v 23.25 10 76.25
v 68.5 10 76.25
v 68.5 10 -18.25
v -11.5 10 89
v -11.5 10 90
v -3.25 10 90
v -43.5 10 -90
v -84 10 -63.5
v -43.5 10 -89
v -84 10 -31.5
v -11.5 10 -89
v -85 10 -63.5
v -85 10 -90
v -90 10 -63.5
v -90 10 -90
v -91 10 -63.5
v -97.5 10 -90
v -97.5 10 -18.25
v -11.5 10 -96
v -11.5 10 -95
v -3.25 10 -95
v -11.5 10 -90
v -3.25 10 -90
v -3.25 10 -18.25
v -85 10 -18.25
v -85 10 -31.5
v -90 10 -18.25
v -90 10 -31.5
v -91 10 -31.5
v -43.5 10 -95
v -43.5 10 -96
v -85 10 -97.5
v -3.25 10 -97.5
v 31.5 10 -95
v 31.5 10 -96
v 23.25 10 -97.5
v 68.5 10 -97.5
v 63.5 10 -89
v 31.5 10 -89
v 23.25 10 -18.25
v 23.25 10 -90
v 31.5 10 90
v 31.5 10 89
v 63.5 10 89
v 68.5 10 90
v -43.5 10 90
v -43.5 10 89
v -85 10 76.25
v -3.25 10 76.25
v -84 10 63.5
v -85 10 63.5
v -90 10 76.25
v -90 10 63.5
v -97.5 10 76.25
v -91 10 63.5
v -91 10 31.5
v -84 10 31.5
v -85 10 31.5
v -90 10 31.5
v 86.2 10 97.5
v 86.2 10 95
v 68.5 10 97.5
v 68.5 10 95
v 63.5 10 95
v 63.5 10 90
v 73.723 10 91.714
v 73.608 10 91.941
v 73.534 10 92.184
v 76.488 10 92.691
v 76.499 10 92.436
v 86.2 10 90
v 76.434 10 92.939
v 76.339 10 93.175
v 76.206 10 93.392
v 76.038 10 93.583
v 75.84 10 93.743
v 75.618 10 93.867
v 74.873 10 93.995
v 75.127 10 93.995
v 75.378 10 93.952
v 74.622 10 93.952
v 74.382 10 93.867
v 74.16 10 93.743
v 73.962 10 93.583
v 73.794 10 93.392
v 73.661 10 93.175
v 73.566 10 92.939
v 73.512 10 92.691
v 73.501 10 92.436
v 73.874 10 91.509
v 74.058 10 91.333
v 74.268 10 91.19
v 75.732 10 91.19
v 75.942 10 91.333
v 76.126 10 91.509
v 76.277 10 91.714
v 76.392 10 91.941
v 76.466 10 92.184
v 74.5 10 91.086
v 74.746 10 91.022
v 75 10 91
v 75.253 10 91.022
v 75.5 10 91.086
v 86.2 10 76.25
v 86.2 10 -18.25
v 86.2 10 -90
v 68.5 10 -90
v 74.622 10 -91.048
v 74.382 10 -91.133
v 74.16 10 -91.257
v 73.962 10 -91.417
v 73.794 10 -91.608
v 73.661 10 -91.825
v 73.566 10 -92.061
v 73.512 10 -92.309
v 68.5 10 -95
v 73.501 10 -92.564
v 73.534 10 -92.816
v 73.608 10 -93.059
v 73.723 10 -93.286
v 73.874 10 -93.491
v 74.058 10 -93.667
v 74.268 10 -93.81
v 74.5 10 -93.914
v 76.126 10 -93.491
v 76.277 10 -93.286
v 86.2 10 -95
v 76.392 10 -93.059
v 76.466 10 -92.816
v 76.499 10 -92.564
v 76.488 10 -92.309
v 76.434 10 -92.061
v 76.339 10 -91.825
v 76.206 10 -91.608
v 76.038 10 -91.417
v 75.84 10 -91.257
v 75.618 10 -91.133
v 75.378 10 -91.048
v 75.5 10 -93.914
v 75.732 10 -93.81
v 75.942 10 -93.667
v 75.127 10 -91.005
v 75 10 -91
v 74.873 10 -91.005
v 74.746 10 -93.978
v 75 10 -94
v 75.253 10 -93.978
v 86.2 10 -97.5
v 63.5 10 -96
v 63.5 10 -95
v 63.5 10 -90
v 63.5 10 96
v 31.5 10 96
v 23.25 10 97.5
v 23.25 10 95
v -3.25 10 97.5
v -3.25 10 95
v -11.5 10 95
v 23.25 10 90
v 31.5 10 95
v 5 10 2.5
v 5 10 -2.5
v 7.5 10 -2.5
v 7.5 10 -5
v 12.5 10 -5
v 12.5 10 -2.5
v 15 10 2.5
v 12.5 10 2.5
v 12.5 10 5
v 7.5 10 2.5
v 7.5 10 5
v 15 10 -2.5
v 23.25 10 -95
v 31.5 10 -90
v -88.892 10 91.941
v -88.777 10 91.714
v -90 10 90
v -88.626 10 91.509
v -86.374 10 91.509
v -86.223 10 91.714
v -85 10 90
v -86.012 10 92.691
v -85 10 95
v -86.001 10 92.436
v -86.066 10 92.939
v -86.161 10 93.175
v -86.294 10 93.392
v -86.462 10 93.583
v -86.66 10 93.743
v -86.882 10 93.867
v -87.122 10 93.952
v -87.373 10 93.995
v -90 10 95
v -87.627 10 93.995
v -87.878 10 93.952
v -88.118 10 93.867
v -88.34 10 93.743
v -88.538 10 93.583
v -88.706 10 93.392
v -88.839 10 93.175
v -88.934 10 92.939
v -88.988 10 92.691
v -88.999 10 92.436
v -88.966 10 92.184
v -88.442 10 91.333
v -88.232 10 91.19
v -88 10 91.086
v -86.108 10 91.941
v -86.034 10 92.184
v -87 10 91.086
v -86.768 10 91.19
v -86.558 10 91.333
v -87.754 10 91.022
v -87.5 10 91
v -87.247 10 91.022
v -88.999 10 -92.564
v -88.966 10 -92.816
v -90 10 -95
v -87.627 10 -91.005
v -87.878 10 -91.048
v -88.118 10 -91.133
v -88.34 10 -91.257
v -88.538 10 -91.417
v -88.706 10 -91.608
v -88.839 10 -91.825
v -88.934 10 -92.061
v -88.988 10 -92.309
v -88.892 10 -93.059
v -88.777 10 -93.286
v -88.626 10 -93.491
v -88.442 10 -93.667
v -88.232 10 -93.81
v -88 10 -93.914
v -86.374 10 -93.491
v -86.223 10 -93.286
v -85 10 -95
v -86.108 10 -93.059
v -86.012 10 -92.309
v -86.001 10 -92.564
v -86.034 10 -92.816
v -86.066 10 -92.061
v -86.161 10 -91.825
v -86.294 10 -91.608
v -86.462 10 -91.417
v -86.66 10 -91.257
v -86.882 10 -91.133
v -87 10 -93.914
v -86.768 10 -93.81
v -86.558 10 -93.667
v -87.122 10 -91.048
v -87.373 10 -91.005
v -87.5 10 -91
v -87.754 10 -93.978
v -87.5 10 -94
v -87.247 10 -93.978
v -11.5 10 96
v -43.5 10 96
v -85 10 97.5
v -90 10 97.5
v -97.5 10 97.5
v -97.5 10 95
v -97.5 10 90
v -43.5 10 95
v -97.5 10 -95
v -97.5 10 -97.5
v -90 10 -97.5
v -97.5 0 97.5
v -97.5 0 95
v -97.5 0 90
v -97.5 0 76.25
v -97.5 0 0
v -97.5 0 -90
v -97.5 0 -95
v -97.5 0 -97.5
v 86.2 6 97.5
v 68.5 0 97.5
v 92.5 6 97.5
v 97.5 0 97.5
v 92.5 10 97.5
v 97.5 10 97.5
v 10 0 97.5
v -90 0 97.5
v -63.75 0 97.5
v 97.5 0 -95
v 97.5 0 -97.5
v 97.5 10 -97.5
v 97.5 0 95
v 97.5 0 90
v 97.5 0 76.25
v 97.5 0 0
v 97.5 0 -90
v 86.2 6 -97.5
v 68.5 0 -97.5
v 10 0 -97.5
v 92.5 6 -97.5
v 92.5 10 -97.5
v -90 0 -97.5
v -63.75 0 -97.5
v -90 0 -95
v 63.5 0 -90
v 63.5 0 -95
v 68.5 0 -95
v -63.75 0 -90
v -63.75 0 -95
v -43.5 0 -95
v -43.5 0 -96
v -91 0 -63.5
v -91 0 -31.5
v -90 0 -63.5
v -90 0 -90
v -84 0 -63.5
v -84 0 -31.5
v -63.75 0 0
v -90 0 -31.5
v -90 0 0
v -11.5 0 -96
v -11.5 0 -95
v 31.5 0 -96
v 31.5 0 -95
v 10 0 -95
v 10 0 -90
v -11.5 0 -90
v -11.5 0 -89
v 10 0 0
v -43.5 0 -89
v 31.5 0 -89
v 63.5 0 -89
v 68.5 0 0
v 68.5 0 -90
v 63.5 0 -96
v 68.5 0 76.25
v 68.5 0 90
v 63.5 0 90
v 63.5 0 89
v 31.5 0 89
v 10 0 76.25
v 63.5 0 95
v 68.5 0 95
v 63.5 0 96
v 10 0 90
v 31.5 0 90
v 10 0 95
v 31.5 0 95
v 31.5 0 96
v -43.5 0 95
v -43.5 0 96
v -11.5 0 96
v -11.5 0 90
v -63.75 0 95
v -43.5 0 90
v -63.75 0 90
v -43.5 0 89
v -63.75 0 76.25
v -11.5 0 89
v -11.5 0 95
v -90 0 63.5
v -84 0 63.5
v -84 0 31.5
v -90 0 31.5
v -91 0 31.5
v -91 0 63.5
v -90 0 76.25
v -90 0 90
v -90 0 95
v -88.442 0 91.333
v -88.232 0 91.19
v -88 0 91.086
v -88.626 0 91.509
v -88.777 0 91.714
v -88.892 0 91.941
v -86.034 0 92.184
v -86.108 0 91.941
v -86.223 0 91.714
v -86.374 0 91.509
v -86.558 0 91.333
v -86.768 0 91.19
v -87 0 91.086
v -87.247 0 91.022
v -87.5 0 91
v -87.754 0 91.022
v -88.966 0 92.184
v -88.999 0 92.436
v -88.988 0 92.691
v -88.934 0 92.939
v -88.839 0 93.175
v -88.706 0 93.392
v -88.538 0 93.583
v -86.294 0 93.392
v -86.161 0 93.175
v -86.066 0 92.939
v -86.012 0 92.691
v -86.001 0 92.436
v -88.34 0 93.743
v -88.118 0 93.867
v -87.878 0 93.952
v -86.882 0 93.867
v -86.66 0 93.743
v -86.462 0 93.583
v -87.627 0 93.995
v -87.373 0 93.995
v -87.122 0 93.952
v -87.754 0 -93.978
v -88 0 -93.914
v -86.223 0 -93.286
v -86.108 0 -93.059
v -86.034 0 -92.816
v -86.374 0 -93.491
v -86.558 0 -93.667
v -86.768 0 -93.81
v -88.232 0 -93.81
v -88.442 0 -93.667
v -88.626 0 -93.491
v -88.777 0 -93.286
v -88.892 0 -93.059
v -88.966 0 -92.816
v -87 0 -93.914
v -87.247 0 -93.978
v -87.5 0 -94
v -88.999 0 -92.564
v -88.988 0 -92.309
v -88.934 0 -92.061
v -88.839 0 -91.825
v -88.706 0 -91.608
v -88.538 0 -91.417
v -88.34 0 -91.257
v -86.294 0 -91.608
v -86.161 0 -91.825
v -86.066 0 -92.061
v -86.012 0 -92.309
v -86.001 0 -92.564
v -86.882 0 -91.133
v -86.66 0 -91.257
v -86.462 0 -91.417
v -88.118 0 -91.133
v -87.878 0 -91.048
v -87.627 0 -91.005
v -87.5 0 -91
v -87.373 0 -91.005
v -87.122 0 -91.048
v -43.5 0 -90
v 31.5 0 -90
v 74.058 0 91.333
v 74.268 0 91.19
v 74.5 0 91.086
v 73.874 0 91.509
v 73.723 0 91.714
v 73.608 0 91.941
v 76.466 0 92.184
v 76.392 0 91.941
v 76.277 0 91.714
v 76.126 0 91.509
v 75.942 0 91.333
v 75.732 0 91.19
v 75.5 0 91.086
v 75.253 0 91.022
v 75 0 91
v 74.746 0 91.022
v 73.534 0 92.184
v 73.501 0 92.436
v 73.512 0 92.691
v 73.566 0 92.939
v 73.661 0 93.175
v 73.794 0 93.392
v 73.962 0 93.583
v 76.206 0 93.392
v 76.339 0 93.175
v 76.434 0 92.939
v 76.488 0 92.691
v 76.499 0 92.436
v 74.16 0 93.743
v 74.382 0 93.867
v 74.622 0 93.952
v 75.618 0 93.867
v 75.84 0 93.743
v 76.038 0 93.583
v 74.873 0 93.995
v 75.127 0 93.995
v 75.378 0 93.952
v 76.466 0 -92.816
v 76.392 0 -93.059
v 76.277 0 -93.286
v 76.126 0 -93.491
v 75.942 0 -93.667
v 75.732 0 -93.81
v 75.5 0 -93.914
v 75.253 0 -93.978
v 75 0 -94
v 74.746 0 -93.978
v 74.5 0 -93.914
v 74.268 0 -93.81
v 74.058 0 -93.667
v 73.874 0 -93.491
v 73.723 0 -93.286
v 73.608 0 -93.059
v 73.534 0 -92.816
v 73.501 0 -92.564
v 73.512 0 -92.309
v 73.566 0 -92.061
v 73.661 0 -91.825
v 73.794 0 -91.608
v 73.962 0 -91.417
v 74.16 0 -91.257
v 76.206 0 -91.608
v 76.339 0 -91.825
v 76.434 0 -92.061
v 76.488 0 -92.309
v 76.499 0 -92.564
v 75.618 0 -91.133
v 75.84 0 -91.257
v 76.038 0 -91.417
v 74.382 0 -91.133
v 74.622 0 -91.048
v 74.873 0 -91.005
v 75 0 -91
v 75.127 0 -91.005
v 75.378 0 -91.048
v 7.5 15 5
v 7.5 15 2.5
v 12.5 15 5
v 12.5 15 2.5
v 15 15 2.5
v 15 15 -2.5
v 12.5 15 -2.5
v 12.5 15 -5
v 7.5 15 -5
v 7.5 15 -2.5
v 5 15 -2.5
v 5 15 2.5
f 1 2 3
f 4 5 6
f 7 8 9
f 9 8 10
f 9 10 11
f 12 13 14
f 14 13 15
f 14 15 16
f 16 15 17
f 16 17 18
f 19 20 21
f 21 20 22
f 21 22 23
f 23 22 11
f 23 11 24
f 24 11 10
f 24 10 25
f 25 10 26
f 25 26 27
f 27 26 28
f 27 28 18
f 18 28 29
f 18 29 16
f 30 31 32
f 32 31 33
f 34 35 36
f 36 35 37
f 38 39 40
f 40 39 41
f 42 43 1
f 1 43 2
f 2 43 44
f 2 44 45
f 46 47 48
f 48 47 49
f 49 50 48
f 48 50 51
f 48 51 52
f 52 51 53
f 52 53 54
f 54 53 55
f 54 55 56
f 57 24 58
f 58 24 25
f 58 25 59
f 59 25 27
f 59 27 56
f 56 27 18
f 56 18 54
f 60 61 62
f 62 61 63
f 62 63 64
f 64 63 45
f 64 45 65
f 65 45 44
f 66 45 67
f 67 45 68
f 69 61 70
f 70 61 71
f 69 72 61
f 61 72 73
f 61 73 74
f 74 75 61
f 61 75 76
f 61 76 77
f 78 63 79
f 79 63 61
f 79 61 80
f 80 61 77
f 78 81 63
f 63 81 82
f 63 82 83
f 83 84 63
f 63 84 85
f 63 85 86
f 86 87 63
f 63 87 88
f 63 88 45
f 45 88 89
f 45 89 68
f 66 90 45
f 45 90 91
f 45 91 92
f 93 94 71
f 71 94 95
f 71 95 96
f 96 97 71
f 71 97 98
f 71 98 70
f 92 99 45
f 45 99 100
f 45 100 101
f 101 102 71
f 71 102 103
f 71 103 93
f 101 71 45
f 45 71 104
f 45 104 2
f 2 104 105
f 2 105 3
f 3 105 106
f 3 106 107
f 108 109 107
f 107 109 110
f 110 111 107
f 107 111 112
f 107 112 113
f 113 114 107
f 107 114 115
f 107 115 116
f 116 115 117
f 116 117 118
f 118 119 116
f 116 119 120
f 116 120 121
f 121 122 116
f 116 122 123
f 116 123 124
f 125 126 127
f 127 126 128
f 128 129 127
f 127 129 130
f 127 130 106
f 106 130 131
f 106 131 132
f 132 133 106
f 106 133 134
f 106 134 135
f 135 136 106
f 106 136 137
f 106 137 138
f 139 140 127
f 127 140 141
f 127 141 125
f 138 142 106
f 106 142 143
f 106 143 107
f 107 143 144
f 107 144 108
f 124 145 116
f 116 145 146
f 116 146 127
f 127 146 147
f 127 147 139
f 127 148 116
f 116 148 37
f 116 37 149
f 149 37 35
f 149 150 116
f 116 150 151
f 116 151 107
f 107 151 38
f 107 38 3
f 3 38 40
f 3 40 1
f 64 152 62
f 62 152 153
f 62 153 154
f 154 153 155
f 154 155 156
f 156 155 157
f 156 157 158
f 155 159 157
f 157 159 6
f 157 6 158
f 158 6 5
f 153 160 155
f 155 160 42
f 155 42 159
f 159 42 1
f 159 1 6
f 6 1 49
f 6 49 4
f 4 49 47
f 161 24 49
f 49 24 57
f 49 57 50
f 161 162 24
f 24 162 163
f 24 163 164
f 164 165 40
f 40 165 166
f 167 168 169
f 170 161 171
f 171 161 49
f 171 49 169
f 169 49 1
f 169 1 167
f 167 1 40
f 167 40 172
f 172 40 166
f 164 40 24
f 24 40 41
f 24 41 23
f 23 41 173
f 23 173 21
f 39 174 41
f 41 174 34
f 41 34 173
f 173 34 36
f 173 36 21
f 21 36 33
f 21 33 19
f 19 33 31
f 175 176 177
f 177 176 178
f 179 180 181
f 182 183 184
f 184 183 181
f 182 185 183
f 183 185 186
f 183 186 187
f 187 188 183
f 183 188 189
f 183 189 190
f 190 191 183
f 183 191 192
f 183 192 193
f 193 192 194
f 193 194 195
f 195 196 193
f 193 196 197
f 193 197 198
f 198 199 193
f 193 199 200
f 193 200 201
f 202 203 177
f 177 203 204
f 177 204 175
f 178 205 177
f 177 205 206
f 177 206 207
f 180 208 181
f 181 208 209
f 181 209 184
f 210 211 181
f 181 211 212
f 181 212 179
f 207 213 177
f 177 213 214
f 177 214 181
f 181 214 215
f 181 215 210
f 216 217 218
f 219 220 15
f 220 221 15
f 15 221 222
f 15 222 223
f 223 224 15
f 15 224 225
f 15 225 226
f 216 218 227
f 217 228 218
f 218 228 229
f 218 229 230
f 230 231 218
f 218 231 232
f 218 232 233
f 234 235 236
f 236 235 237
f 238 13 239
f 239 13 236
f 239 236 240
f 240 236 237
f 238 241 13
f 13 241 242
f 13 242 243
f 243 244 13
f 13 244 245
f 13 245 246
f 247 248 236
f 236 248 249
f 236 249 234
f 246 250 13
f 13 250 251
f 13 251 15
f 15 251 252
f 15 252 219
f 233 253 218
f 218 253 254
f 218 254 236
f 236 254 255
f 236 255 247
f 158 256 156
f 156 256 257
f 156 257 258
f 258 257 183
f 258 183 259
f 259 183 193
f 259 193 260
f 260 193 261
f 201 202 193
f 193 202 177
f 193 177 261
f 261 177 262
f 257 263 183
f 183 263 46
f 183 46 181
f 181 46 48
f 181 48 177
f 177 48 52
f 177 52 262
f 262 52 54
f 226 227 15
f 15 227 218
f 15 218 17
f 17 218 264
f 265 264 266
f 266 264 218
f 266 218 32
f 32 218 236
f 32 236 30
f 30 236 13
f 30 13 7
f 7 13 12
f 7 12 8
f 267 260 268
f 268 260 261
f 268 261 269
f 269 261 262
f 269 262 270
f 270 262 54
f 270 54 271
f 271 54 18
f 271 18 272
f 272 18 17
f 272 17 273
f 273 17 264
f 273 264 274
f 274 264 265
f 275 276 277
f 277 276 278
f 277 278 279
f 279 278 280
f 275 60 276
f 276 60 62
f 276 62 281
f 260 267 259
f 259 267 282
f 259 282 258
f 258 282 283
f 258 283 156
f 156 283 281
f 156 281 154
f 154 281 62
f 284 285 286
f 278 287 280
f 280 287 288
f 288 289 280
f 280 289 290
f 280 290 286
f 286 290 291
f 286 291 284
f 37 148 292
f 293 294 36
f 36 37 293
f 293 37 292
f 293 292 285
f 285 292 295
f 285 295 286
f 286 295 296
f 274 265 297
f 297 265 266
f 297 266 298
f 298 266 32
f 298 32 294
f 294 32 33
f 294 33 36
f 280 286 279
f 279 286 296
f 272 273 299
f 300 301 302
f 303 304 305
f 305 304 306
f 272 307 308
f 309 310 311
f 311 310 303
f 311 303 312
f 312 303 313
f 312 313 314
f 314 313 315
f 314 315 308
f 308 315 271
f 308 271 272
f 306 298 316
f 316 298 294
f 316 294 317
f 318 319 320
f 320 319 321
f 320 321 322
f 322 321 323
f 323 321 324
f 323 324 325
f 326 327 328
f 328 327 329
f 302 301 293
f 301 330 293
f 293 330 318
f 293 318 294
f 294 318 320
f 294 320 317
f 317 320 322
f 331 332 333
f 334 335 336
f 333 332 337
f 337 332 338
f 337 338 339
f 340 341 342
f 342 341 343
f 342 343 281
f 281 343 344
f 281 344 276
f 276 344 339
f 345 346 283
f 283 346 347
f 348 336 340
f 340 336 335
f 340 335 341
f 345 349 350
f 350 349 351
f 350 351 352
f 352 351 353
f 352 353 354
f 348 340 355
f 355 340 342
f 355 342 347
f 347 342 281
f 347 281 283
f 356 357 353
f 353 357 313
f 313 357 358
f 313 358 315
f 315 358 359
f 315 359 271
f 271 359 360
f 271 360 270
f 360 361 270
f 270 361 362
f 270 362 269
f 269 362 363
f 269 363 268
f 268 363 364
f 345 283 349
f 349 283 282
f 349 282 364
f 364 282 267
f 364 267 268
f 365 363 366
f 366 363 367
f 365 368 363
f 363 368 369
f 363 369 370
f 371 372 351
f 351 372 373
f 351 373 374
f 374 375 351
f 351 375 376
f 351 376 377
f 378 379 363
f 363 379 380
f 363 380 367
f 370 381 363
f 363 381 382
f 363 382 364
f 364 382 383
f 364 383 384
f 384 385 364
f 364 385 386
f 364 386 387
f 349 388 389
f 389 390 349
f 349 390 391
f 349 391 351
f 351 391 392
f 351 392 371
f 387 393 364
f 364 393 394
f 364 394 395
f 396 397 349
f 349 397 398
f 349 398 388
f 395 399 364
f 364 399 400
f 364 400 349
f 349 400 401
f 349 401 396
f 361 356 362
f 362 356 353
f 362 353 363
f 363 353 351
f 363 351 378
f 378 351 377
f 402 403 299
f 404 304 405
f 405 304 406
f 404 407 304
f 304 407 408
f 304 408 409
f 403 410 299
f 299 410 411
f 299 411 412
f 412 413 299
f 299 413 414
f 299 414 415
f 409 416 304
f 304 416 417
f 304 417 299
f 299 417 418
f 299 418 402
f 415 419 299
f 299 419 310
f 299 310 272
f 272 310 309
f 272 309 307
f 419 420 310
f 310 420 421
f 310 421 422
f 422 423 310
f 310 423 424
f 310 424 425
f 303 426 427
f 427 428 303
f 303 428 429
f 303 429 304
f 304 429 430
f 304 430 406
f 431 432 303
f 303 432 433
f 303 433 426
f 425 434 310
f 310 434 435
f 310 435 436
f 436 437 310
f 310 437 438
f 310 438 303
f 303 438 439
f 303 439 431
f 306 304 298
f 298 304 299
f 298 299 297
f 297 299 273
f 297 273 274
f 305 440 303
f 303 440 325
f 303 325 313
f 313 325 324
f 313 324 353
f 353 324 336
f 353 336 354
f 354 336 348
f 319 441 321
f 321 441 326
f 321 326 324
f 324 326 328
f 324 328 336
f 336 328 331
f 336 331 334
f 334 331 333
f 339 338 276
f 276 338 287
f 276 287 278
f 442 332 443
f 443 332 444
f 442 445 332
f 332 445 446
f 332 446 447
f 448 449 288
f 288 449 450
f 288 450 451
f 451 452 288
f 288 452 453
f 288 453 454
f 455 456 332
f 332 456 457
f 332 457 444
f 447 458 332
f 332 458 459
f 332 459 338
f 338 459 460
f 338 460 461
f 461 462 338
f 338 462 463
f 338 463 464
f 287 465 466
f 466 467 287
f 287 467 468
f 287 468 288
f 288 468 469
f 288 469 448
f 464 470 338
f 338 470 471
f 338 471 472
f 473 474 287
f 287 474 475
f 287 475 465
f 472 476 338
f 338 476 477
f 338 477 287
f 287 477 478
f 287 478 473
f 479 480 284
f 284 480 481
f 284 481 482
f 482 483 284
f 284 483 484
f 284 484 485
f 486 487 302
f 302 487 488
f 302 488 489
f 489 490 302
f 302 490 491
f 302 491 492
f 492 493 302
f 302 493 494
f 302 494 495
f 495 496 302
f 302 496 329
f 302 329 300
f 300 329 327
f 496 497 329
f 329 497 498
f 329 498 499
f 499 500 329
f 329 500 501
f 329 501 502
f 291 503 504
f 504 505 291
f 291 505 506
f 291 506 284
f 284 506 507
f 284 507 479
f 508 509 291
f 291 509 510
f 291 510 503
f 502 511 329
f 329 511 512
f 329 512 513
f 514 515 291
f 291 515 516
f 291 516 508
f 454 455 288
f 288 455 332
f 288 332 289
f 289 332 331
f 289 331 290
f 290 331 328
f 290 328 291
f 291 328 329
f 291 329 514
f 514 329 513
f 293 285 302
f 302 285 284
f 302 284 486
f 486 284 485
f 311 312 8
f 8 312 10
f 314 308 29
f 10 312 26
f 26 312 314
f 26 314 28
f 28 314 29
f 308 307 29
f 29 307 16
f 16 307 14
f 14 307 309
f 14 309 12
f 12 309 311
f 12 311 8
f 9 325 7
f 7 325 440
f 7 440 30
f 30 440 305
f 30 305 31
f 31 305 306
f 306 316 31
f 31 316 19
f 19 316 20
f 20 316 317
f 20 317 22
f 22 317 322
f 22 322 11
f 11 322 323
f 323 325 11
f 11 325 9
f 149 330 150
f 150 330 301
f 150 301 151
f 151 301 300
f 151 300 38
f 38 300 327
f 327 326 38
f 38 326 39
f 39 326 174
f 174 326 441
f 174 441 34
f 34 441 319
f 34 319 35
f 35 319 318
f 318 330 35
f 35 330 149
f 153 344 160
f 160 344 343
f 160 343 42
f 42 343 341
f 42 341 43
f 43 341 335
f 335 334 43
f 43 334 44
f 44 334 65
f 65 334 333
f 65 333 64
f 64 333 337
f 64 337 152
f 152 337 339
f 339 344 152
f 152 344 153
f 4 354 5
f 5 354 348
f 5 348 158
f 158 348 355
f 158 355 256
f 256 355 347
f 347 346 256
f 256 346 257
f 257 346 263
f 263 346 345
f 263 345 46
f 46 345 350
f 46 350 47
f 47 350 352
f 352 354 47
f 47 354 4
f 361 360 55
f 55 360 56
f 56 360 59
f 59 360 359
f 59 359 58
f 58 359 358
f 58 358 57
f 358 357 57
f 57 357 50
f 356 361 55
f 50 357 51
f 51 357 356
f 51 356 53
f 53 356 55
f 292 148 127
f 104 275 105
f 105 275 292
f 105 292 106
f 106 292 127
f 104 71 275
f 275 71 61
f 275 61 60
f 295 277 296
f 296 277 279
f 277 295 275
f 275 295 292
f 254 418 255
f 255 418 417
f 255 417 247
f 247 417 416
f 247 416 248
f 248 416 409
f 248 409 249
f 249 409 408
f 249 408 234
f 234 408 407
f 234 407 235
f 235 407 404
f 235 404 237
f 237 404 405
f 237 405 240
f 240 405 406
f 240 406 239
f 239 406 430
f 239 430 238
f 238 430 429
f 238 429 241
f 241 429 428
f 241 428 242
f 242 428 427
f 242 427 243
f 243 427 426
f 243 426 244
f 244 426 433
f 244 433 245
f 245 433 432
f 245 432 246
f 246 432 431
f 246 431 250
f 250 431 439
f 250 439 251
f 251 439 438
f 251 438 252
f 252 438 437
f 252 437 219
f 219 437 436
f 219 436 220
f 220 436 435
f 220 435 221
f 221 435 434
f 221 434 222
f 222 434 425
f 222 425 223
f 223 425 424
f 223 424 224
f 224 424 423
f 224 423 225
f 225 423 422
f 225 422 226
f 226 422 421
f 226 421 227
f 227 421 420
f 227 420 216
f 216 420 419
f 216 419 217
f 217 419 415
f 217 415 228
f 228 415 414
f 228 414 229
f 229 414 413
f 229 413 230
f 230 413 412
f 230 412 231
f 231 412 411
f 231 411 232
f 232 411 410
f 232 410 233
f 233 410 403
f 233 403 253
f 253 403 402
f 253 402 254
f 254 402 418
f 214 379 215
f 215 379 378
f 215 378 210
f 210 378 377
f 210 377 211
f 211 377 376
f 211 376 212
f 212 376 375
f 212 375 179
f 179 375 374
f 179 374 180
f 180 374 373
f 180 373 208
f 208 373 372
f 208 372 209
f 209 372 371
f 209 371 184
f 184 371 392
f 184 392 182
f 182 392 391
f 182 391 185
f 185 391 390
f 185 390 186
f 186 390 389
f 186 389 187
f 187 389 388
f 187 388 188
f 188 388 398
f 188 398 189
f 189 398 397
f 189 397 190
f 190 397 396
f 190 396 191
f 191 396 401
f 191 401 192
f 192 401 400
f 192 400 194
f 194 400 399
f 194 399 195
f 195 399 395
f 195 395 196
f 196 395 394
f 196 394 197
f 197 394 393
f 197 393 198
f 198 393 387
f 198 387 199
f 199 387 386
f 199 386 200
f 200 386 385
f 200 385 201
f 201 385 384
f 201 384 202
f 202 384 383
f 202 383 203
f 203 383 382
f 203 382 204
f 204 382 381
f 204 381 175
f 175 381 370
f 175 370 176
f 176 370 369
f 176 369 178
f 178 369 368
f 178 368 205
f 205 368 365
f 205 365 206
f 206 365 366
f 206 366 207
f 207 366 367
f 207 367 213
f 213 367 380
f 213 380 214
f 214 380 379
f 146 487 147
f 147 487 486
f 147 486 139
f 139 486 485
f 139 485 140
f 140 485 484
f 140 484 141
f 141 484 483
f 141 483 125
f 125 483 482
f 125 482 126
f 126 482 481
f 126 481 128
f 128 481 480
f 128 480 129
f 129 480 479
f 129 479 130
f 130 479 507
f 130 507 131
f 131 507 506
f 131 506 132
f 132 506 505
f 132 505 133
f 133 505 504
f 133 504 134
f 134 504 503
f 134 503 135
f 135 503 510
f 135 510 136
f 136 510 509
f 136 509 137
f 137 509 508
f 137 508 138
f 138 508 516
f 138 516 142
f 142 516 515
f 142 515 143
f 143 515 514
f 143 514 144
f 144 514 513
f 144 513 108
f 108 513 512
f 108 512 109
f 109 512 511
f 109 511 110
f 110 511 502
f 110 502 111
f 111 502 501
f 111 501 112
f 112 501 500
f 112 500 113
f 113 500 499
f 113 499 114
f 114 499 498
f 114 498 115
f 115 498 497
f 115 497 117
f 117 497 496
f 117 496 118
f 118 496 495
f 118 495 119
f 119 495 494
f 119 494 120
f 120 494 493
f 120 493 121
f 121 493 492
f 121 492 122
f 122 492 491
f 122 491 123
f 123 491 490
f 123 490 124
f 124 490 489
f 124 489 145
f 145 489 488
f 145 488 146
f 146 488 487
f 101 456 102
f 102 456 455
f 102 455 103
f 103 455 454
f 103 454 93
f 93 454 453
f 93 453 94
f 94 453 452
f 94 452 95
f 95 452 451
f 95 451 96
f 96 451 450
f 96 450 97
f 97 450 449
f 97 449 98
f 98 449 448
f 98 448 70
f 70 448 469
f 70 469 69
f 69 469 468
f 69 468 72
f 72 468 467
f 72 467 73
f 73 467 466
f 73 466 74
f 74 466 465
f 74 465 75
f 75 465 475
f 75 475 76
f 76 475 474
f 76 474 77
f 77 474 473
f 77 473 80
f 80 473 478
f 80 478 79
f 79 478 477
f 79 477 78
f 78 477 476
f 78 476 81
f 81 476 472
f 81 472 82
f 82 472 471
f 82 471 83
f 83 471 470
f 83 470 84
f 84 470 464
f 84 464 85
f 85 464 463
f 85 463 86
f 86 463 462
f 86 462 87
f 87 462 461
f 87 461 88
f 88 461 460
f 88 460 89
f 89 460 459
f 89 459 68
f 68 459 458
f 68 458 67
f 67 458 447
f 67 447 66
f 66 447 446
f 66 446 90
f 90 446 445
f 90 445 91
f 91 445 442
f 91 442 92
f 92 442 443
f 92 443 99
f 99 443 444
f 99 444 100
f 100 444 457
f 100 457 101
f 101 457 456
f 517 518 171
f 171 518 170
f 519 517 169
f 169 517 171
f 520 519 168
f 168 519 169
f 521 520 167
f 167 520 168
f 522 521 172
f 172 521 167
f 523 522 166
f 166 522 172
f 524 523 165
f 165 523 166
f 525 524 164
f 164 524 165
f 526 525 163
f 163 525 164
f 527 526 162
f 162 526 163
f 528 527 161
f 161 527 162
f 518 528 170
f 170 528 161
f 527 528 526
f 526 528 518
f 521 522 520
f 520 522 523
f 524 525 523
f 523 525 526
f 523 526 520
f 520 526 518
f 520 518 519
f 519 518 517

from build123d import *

# Parameters (mm, degrees)
ESBO_O1_W                = 195
ESBO_O1_H                = 195
RESSALTO_EXTRUS_O1_DEPTH = 10
ESBO_O2_W                = 7
ESBO_O2_H                = 32
ESBO_O2_W_2              = 32
ESBO_O2_H_2              = 7
CORTE_EXTRUS_O1_DEPTH    = 11
ESBO_O3_W                = 6.3
ESBO_O3_H                = 195
CORTE_EXTRUS_O2_DEPTH    = 4
ESBO_O4_R                = 1.5
CORTE_EXTRUS_O3_DEPTH    = 11
ESBO_O5_R                = 1.5
CORTE_EXTRUS_O4_DEPTH    = 11
ESBO_O6_W                = 5
ESBO_O6_H                = 2.5
ESBO_O6_H_2              = 5
ESBO_O6_W_2              = 2.5
RESSALTO_EXTRUS_O2_DEPTH = 5


with BuildPart() as part:
    # Esboço1 → Ressalto-extrusão1 (new body)
    with BuildSketch(Plane(origin=(0, 0, 0), x_dir=(1, 0, 0), z_dir=(0, 1, 0))):
        Rectangle(ESBO_O1_W, ESBO_O1_H)
    extrude(amount=RESSALTO_EXTRUS_O1_DEPTH)

    # Esboço2 → Corte-extrusão1 (cut, through all)
    with BuildSketch(Plane(origin=(0, 10, 0), x_dir=(1, 0, 0), z_dir=(0, 1, 0))):
        with Locations((-87.5, 47.5)):
            Rectangle(ESBO_O2_W, ESBO_O2_H)
        with Locations((-87.5, -47.5)):
            Rectangle(ESBO_O2_W, ESBO_O2_H)
        with Locations((-27.5, -92.5)):
            Rectangle(ESBO_O2_W_2, ESBO_O2_H_2)
        with Locations((47.5, -92.5)):
            Rectangle(ESBO_O2_W_2, ESBO_O2_H_2)
        with Locations((47.5, 92.5)):
            Rectangle(ESBO_O2_W_2, ESBO_O2_H_2)
        with Locations((-27.5, 92.5)):
            Rectangle(ESBO_O2_W_2, ESBO_O2_H_2)
    extrude(amount=-CORTE_EXTRUS_O1_DEPTH, mode=Mode.SUBTRACT)

    # Esboço3 → Corte-extrusão2 (cut)
    with BuildSketch(Plane(origin=(0, 10, 0), x_dir=(1, 0, 0), z_dir=(0, 1, 0))):
        with Locations((89.35, 0)):
            Rectangle(ESBO_O3_W, ESBO_O3_H)
    extrude(amount=-CORTE_EXTRUS_O2_DEPTH, mode=Mode.SUBTRACT)

    # Esboço4 → Corte-extrusão3 (cut, through all)
    with BuildSketch(Plane.XZ):
        with Locations((-87.5, 92.5)):
            Circle(ESBO_O4_R)
        with Locations((-87.5, -92.5)):
            Circle(ESBO_O4_R)
    extrude(amount=-CORTE_EXTRUS_O3_DEPTH, mode=Mode.SUBTRACT)

    # Esboço5 → Corte-extrusão4 (cut, through all)
    with BuildSketch(Plane.XZ):
        with Locations((75, 92.5)):
            Circle(ESBO_O5_R)
        with Locations((75, -92.5)):
            Circle(ESBO_O5_R)
    extrude(amount=-CORTE_EXTRUS_O4_DEPTH, mode=Mode.SUBTRACT)

    # Esboço6 → Ressalto-extrusão2 (add)
    with BuildSketch(Plane(origin=(0, 10, 0), x_dir=(1, 0, 0), z_dir=(0, 1, 0))):
        with Locations((10, -3.75)):
            Rectangle(ESBO_O6_W, ESBO_O6_H)
        with Locations((10, 0)):
            Rectangle(ESBO_O6_W, ESBO_O6_H_2)
        with Locations((13.75, 0)):
            Rectangle(ESBO_O6_W_2, ESBO_O6_H_2)
        with Locations((6.25, 0)):
            Rectangle(ESBO_O6_W_2, ESBO_O6_H_2)
        with Locations((10, 3.75)):
            Rectangle(ESBO_O6_W, ESBO_O6_H)
    extrude(amount=RESSALTO_EXTRUS_O2_DEPTH)


solid = part.part
